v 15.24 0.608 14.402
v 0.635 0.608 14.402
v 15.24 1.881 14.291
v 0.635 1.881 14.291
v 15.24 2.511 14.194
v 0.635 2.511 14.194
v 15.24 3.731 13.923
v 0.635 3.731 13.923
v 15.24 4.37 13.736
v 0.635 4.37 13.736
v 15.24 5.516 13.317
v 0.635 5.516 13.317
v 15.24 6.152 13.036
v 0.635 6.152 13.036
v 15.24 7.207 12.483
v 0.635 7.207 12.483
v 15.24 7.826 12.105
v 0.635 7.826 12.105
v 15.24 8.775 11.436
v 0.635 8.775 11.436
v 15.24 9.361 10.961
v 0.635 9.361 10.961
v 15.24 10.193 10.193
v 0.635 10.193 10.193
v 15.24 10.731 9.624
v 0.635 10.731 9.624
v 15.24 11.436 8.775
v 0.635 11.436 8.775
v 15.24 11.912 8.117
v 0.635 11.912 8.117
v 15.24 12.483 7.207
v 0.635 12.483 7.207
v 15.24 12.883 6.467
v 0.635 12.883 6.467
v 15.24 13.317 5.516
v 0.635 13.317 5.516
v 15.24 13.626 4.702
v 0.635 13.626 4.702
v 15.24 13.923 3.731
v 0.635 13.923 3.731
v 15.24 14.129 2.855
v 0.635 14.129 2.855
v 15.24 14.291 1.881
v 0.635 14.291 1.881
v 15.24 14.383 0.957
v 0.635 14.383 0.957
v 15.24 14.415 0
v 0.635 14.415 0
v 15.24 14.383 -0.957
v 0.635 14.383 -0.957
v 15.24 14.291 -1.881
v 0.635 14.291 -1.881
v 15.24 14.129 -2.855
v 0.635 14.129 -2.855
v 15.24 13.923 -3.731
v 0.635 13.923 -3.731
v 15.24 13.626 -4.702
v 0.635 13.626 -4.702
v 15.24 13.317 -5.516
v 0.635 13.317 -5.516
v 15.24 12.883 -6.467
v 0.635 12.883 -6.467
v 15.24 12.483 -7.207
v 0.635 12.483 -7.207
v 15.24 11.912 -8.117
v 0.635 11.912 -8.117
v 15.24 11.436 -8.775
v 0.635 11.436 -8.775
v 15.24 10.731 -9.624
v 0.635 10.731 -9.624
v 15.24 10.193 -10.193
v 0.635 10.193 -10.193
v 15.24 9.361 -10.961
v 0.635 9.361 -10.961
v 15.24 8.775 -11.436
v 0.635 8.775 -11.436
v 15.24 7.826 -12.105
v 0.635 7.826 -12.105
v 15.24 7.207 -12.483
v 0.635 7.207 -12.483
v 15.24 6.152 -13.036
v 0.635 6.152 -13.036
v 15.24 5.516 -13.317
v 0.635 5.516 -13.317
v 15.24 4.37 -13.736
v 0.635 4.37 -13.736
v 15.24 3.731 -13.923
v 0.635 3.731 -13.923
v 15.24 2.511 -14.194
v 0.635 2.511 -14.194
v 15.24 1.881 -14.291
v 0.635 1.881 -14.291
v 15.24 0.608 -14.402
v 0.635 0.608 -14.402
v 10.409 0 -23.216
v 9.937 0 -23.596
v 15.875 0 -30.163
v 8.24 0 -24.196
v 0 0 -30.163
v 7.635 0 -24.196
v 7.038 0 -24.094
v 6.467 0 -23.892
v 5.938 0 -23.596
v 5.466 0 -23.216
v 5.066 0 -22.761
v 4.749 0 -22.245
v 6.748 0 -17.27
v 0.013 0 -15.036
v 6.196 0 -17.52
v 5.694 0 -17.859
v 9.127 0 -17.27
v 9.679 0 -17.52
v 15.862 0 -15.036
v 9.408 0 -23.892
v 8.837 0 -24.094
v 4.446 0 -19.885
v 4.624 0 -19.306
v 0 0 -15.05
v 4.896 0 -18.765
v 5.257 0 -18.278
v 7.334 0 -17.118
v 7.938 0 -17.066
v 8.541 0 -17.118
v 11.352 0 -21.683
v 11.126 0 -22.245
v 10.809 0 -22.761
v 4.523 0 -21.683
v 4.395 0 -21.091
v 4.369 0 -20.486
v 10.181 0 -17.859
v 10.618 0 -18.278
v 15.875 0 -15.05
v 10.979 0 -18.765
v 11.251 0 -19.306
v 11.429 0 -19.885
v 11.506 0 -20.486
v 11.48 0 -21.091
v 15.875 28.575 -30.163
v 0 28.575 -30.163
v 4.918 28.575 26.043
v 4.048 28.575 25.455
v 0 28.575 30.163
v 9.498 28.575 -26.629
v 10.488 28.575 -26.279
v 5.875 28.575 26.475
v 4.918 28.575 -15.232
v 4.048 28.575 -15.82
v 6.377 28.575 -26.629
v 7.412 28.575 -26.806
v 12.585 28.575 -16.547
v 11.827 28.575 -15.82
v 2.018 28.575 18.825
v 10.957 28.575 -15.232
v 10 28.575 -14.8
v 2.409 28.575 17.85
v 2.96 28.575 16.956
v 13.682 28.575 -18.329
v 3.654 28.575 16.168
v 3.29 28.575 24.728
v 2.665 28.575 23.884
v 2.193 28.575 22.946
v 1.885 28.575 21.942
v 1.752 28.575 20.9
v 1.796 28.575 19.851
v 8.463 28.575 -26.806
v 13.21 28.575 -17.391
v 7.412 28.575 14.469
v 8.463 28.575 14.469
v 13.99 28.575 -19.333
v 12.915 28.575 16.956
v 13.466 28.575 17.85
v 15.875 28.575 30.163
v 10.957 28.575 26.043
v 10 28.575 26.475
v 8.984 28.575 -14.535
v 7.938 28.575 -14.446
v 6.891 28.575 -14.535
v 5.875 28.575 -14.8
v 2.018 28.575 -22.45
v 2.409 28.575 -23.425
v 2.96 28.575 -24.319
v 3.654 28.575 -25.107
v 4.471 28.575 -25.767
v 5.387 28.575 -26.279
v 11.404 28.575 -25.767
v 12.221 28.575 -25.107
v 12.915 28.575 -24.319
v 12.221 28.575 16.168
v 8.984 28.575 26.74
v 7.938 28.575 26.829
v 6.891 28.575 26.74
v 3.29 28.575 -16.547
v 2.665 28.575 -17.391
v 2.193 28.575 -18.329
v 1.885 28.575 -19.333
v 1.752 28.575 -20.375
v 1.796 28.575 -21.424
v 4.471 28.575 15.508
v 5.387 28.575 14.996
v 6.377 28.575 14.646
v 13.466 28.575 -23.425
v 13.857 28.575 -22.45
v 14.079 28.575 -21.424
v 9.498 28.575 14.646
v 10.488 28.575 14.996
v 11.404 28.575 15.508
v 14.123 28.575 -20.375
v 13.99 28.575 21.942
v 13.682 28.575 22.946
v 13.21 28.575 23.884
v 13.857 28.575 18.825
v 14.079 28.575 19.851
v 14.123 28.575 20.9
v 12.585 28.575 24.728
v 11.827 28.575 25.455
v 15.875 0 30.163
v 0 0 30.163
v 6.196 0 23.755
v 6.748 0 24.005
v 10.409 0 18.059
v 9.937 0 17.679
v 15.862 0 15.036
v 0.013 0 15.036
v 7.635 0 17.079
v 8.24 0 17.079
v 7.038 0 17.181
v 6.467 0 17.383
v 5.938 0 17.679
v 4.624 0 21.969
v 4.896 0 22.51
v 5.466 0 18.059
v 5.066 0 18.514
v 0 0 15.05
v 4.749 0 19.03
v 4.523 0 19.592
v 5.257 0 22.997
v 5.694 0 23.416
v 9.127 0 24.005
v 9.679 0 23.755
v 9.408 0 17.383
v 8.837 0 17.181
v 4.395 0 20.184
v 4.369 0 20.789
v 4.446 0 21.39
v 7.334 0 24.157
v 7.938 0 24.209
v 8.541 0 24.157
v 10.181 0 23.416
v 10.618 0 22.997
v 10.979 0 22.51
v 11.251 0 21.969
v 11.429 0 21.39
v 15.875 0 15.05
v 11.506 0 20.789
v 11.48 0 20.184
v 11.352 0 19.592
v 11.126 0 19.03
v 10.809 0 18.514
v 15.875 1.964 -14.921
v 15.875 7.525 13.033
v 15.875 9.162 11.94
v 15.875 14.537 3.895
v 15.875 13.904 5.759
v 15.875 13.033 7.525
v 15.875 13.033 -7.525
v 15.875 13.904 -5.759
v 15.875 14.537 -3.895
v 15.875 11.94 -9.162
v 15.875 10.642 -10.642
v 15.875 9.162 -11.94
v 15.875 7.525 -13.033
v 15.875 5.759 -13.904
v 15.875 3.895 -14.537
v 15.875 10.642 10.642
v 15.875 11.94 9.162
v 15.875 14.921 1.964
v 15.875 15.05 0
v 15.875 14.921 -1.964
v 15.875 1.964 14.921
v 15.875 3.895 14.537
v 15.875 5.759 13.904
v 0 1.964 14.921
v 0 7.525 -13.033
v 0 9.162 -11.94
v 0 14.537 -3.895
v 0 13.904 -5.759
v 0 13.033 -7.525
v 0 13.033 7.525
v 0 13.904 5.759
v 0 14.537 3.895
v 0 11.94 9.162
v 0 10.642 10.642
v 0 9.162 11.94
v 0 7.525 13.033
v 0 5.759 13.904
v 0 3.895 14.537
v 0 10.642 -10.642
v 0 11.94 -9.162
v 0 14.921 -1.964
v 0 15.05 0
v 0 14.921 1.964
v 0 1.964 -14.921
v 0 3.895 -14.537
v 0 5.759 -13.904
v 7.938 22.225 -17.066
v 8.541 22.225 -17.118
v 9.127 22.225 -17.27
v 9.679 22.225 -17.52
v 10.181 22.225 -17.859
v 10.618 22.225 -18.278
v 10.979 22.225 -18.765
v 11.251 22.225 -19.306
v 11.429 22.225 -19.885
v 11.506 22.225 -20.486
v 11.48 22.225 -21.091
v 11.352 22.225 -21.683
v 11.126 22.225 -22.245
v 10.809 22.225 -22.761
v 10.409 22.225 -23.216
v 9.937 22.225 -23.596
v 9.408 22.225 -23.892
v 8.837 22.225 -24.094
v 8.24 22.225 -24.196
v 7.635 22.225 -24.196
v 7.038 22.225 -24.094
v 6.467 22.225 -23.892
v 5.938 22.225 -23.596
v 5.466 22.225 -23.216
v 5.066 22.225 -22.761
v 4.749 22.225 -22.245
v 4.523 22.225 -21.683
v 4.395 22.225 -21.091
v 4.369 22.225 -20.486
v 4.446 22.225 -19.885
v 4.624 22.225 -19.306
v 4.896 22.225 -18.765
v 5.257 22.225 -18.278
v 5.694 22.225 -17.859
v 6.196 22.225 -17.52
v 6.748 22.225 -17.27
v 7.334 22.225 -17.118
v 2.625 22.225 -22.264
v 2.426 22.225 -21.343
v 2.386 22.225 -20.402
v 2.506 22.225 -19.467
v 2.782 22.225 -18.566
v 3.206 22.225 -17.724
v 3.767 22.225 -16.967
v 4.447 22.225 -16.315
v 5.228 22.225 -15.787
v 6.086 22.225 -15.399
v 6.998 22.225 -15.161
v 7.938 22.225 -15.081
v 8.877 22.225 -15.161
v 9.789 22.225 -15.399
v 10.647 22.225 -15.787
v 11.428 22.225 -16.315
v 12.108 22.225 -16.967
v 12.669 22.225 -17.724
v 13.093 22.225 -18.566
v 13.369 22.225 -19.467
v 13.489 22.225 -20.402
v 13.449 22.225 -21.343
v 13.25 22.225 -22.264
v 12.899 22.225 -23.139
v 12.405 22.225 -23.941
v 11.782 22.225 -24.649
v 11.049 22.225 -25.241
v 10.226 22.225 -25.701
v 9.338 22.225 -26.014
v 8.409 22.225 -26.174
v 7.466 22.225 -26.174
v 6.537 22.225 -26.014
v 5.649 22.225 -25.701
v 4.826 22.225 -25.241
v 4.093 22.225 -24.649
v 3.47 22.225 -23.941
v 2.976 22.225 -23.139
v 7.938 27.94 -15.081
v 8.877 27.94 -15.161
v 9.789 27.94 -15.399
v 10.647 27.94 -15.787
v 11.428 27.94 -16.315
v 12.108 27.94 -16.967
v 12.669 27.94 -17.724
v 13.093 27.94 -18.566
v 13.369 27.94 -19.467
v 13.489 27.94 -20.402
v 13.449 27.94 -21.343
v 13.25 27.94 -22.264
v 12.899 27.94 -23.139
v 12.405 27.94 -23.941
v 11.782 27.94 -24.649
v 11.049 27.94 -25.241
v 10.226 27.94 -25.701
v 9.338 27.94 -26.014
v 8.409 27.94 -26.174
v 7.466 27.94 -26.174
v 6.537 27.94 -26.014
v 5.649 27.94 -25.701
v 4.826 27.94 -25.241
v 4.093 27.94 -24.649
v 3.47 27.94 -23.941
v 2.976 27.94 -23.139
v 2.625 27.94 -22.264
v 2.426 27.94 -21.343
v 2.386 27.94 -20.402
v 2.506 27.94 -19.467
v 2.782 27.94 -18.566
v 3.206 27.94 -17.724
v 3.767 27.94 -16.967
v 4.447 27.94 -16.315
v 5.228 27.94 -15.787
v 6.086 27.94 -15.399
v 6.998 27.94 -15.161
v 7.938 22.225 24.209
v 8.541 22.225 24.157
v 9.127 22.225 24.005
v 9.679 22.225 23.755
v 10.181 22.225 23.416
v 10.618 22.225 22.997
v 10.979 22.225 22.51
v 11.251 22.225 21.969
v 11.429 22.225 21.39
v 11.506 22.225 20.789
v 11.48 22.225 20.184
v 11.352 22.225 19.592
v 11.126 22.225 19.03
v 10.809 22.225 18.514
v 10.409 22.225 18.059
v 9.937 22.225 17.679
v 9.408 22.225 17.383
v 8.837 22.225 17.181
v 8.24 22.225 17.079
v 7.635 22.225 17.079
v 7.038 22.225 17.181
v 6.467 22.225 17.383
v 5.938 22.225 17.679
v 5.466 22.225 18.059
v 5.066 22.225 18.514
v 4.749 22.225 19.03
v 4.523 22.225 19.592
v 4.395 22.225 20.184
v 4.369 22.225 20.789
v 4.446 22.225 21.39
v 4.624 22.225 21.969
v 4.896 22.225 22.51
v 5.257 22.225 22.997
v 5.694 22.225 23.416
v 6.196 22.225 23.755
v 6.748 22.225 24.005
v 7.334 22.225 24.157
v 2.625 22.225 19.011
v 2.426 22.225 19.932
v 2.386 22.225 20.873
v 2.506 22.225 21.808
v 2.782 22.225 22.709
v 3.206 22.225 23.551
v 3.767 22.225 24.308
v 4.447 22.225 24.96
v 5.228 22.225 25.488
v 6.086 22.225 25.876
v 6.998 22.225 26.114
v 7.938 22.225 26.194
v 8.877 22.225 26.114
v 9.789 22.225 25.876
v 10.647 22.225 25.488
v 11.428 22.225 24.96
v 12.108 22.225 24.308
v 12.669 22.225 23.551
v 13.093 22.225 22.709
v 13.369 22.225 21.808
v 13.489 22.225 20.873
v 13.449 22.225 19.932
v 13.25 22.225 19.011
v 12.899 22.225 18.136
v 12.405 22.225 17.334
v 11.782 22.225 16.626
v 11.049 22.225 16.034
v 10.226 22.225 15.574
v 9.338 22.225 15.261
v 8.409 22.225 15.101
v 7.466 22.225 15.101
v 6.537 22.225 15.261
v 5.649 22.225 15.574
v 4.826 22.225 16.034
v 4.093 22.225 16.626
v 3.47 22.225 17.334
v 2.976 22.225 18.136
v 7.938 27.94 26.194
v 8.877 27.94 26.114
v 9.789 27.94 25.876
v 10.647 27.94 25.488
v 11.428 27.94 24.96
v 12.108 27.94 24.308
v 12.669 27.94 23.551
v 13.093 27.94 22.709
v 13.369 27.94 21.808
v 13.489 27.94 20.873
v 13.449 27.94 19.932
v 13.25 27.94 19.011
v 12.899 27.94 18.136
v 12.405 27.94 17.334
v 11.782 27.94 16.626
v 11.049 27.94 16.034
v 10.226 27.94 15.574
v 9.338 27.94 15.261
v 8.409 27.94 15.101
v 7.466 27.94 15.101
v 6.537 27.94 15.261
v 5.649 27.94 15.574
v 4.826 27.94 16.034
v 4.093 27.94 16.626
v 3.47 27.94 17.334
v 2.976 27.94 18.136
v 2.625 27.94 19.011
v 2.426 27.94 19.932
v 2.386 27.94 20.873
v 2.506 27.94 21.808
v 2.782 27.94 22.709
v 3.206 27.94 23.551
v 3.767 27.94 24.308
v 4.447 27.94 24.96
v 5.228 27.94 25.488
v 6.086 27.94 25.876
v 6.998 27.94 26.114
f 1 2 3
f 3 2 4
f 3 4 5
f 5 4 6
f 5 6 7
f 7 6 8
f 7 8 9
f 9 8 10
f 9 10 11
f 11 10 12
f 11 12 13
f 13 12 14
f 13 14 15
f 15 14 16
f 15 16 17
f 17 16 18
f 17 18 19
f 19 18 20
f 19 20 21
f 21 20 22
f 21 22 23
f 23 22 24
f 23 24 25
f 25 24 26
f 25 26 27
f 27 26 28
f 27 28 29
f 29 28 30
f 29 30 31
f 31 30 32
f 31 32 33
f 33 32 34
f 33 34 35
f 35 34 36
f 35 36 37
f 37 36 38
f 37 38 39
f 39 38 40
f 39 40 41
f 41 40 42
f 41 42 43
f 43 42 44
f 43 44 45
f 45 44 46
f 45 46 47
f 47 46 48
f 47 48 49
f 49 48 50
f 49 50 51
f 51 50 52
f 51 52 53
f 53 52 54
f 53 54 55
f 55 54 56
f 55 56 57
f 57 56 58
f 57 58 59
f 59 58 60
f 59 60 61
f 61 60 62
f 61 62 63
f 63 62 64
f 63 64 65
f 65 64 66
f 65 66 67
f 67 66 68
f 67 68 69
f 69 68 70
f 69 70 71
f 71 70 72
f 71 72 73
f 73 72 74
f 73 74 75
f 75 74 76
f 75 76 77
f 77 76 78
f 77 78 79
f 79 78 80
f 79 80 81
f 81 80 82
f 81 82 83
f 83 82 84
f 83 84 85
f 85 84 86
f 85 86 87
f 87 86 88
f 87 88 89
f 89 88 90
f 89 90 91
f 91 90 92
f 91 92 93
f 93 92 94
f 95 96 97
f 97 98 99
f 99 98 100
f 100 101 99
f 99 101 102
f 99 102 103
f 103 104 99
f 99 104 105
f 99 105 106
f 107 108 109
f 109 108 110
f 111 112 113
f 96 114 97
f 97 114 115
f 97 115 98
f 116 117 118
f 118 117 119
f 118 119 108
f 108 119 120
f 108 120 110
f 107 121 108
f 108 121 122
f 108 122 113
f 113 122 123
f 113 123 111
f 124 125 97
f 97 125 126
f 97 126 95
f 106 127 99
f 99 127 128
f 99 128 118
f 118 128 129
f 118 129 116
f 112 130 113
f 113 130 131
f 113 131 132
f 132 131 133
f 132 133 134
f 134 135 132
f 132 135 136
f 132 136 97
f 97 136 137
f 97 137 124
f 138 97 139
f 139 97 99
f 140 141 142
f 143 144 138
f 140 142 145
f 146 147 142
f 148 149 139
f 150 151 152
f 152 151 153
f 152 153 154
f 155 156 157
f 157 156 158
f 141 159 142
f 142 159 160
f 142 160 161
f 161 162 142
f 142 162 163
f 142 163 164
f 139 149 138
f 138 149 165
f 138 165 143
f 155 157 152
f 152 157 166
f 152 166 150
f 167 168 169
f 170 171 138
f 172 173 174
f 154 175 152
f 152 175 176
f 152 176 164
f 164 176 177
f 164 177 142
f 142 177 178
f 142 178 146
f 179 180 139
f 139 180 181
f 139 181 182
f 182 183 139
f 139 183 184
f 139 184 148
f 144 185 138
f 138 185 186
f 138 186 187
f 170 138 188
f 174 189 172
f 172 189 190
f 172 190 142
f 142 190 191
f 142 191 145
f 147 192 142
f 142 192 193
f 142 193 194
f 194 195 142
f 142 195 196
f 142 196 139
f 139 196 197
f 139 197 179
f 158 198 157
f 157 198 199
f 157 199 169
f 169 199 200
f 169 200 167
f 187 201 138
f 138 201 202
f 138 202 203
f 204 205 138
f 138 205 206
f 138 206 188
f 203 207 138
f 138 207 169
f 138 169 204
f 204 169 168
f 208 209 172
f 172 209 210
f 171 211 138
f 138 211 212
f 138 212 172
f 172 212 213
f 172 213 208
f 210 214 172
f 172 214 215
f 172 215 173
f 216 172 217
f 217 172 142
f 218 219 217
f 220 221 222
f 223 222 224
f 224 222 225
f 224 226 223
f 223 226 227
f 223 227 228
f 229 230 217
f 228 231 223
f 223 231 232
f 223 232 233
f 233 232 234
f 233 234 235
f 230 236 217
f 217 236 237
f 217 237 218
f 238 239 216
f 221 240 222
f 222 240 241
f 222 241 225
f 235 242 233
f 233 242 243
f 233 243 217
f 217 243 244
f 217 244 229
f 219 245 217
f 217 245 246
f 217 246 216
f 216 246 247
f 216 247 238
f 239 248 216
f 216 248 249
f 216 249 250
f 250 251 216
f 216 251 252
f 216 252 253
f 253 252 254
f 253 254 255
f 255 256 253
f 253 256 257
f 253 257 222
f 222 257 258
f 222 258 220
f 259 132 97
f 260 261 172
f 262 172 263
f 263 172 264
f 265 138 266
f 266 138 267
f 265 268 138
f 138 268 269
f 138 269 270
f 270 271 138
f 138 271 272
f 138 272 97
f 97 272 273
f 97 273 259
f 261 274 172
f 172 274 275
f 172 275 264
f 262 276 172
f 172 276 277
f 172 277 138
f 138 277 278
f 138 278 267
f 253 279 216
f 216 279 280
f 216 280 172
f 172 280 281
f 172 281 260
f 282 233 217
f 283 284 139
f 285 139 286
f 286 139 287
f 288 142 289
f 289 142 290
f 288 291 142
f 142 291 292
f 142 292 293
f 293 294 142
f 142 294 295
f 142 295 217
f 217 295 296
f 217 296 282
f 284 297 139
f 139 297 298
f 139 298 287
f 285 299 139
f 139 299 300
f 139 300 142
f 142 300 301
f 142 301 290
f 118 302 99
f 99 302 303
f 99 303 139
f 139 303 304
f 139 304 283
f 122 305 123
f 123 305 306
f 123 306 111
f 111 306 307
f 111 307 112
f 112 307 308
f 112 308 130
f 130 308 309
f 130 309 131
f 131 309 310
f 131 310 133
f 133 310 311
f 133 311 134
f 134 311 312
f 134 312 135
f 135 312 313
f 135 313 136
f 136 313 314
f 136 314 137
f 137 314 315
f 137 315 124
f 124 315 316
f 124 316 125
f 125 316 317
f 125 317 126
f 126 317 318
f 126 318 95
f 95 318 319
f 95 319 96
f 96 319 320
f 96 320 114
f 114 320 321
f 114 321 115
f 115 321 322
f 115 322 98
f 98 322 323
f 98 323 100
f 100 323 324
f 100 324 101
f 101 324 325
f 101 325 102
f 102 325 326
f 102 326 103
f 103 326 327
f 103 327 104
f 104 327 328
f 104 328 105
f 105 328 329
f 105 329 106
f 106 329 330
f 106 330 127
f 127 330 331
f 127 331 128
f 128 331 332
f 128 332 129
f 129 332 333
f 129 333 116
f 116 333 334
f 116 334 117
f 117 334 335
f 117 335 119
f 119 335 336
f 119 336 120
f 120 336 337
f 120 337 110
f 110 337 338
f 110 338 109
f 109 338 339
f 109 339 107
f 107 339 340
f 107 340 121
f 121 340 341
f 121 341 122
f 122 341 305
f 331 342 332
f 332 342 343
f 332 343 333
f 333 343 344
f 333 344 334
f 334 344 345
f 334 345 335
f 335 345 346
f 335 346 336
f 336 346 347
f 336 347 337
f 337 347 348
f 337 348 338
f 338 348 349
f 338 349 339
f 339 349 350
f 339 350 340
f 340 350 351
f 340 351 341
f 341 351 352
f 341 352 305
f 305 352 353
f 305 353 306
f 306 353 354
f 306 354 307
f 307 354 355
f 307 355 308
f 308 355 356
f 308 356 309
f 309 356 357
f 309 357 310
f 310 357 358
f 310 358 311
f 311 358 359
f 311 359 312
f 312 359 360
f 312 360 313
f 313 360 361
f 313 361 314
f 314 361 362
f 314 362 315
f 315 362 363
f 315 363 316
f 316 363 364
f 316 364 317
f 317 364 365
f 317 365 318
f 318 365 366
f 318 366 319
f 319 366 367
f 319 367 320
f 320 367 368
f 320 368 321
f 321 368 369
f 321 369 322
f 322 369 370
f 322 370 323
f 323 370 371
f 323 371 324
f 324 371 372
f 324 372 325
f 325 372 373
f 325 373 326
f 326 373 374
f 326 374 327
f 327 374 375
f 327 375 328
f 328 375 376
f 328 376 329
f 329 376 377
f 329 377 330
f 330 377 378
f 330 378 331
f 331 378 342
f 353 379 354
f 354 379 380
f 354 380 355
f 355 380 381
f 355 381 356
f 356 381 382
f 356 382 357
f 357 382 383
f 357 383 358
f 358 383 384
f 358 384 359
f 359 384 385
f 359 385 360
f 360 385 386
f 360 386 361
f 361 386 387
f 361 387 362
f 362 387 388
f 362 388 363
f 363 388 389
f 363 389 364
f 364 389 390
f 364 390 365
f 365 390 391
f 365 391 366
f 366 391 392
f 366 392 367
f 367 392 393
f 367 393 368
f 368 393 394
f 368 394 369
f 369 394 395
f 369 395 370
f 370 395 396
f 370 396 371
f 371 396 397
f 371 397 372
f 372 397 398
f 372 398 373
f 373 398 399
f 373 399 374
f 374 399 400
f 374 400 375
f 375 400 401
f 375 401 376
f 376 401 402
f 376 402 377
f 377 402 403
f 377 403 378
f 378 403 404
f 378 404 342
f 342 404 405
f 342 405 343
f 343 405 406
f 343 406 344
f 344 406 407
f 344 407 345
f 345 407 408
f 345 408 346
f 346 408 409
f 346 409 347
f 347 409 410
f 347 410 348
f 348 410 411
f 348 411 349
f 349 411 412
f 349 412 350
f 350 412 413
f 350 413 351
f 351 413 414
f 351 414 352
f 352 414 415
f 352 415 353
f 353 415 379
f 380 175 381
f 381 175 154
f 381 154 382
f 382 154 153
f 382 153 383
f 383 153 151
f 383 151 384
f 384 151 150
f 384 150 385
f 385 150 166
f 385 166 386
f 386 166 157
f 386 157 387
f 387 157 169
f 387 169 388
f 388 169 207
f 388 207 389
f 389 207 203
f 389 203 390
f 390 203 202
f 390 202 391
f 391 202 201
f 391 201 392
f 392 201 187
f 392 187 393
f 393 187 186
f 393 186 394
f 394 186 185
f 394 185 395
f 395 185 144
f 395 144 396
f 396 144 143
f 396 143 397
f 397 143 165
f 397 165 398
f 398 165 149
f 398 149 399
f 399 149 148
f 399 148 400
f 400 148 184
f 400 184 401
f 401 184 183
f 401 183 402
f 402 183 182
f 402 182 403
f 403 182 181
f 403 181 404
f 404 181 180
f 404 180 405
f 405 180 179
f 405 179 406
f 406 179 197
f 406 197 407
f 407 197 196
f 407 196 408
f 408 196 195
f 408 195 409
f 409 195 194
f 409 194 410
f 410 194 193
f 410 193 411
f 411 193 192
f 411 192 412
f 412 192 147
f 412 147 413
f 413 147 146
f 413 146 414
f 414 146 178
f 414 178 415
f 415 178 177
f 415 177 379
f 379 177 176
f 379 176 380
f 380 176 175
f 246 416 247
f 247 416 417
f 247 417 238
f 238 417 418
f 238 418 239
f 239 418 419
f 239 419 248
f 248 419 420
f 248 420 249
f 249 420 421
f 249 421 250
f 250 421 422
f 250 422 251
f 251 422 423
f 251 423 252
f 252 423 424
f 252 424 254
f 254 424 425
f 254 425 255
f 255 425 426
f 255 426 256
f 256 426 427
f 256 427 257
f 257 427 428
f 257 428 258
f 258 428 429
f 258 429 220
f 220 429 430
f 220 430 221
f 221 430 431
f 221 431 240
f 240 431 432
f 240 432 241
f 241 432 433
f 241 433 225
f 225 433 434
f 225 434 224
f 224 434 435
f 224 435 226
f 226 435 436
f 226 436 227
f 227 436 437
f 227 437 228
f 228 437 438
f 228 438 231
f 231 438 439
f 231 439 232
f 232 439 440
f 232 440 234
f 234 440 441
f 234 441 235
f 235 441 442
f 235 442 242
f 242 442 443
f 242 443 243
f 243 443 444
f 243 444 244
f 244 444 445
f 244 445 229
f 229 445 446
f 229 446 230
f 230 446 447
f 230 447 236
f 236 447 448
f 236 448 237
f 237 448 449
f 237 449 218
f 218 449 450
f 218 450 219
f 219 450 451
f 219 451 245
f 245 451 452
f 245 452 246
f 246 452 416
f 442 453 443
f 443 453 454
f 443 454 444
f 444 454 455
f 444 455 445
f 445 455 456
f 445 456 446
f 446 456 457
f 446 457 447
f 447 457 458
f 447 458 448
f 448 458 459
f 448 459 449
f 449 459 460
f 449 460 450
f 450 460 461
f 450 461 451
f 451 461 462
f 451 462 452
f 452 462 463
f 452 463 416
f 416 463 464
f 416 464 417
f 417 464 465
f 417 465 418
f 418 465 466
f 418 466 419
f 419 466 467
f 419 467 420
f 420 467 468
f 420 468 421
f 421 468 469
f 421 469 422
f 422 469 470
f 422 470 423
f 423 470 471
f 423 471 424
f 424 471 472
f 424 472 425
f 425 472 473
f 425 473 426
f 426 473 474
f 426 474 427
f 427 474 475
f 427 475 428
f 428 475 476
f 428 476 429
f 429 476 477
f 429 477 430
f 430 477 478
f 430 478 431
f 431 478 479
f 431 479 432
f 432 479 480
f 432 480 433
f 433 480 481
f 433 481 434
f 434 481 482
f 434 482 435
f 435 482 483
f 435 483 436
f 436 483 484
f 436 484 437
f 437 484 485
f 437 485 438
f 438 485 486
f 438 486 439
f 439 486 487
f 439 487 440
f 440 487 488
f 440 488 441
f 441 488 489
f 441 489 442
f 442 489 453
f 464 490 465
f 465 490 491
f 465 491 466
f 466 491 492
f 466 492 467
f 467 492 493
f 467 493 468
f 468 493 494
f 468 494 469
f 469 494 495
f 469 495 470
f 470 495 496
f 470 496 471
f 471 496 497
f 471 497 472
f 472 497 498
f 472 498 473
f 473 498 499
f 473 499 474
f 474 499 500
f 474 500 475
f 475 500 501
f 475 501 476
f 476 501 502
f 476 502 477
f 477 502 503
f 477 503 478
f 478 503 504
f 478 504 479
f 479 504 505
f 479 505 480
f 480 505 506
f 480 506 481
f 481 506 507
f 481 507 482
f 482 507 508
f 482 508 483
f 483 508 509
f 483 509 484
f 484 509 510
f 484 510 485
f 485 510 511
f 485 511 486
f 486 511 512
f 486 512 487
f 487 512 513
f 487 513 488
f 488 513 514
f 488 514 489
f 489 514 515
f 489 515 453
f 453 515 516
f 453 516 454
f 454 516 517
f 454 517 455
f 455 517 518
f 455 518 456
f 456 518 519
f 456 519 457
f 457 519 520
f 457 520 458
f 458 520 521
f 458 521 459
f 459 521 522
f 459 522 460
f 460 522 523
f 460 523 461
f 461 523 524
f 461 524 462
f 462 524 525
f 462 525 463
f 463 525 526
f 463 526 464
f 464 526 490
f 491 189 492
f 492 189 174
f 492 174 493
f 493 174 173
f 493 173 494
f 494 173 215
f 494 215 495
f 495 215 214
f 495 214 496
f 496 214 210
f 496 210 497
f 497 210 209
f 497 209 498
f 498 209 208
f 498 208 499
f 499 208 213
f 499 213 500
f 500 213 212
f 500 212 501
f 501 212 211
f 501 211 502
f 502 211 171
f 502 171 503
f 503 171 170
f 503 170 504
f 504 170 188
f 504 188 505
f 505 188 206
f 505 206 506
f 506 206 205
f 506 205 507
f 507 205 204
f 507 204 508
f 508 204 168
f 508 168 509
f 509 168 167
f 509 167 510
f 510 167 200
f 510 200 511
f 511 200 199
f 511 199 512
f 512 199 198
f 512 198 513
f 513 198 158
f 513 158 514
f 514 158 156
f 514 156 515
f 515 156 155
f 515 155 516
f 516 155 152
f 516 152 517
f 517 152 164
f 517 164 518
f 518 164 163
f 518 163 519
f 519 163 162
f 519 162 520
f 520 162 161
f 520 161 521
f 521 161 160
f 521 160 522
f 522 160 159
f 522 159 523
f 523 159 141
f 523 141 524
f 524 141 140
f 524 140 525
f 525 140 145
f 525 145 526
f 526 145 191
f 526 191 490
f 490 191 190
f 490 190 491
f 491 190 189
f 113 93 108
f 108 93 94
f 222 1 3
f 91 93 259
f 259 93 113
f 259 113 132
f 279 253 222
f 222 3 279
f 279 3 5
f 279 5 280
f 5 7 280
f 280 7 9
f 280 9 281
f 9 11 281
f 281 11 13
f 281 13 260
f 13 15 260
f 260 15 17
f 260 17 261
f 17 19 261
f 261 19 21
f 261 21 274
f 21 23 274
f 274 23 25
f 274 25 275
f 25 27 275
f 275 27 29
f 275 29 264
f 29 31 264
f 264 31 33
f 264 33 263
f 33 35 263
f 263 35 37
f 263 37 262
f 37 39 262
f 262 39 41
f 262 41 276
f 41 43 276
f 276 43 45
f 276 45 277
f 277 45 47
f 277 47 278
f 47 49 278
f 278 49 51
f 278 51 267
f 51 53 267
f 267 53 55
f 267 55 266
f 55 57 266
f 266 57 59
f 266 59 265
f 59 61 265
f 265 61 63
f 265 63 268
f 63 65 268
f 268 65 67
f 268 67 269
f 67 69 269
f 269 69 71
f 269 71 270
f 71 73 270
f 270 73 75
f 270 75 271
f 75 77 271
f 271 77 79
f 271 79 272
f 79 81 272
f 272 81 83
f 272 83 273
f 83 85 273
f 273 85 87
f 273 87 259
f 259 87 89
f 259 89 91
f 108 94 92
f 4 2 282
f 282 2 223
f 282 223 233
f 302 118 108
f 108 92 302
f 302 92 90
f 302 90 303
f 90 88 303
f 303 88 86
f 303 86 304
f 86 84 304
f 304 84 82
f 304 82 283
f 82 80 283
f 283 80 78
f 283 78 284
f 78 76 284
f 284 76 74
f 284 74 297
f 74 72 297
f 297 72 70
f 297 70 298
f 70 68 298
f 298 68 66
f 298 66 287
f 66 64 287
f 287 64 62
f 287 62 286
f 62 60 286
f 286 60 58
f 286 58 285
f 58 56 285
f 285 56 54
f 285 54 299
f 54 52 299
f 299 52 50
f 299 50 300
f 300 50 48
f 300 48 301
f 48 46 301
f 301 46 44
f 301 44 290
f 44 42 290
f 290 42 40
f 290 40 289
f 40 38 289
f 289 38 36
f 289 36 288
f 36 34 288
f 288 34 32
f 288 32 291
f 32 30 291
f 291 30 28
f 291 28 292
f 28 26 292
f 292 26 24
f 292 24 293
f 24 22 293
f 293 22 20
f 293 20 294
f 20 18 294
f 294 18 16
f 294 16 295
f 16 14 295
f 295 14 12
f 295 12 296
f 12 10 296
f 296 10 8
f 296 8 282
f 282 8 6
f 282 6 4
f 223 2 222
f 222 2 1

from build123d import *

# Parameters (mm, degrees)
BOSS_EXTRUDE1_DEPTH                           = 15.875
BOSS_EXTRUDE2_DEPTH                           = 15.875
CBORE_FOR_1_4_SOCKET_HEAD_CAP_SCREW1_AT_COUNT = 2
CBORE_FOR_1_4_SOCKET_HEAD_CAP_SCREW1_AT_PITCH = 41.275
MOVE_FACE1_BY                                 = 0.127
MOVE_FACE1_2_BY                               = 0.127
MOVE_START                                    = 28.575
MOVE_FACE2_OUTLINE_W                          = 15.875
MOVE_FACE2_OUTLINE_H                          = 60.325
MOVE_FACE2_OUTLINE_R                          = 5.55625
MOVE_FACE2_DEPTH                              = 6.35
MOVE_START_2                                  = 22.225
MOVE_FACE2_2_OUTLINE_R                        = 5.55625
MOVE_FACE2_2_OUTLINE_R_2                      = 3.57124
MOVE_FACE2_2_DEPTH                            = 6.35


with BuildPart() as part:
    # Sketch1 → Boss-Extrude1 (new body)
    with BuildSketch(Plane(origin=(0, 0, 0), x_dir=(0, 0, -1), z_dir=(1, 0, 0))):
        with BuildLine():
            Line((30.1625, 0), (14.2875, 0))
            ThreePointArc((14.2875, 0), (0, -14.2875), (-14.2875, 0))
            Line((-14.2875, 0), (-30.1625, 0))
            Line((-30.1625, 0), (-30.1625, -34.925))
            Line((-30.1625, -34.925), (30.1625, -34.925))
            Line((30.1625, -34.925), (30.1625, 0))
        make_face()
    extrude(amount=BOSS_EXTRUDE1_DEPTH)


with BuildPart() as body_2:
    # Sketch1<3> → Boss-Extrude2 (new body)
    with BuildSketch(Plane(origin=(0, 0, 0), x_dir=(0, 0, -1), z_dir=(1, 0, 0))):
        with BuildLine():
            ThreePointArc((-14.2875, 0), (0, 14.2875), (14.2875, 0))
            Line((14.2875, 0), (30.1625, 0))
            Line((30.1625, 0), (30.1625, 34.925))
            Line((30.1625, 34.925), (-30.1625, 34.925))
            Line((-30.1625, 34.925), (-30.1625, 0))
            Line((-30.1625, 0), (-14.2875, 0))
        make_face()
    extrude(amount=BOSS_EXTRUDE2_DEPTH)


with BuildPart() as cbore_for_1_4_socket_head_cap_screw1_tool:
    # Sketch4 → CBORE for 1/4 Socket Head Cap Screw1 (revolve)
    with BuildSketch(Plane(origin=(7.9375, 34.925, 20.6375), x_dir=(0, 0, 1), z_dir=(1, 0, 0))):
        Polygon((0, 0), (0, 69.85), (3.57124, 69.85), (3.57124, 6.35), (5.55625, 6.35), (5.55625, 0.635), (6.19125, 0), align=None)
    cbore_for_1_4_socket_head_cap_screw1 = revolve(axis=Axis((7.9375, 41.275, 20.6375), (0, -1, 0)))


with BuildPart() as part_1:
    add(part.part)

    # CBORE for 1/4 Socket Head Cap Screw1: cut by cbore_for_1_4_socket_head_cap_screw1_tool
    add(cbore_for_1_4_socket_head_cap_screw1_tool.part, mode=Mode.SUBTRACT)


with BuildPart() as body_2_1:
    add(body_2.part)

    # CBORE for 1/4 Socket Head Cap Screw1: cut by cbore_for_1_4_socket_head_cap_screw1_tool
    add(cbore_for_1_4_socket_head_cap_screw1_tool.part, mode=Mode.SUBTRACT)


with BuildPart() as cbore_for_1_4_socket_head_cap_screw1_at_tool:
    # CBORE for 1/4 Socket Head Cap Screw1 at: CBORE for 1/4 Socket Head Cap Screw1 ×2
    with Locations(*[(0, 0, -i * CBORE_FOR_1_4_SOCKET_HEAD_CAP_SCREW1_AT_PITCH) for i in range(1, CBORE_FOR_1_4_SOCKET_HEAD_CAP_SCREW1_AT_COUNT)]):
        add(cbore_for_1_4_socket_head_cap_screw1)


with BuildPart() as part_2:
    add(part_1.part)

    # CBORE for 1/4 Socket Head Cap Screw1 at: cut by cbore_for_1_4_socket_head_cap_screw1_at_tool
    add(cbore_for_1_4_socket_head_cap_screw1_at_tool.part, mode=Mode.SUBTRACT)

    # Move Face1 2: a curved face moved inward by 0.127
    add(Solid.thicken(part_2.faces().sort_by_distance((7.9375, -14.2875, 0))[0], -MOVE_FACE1_2_BY), mode=Mode.SUBTRACT)

    # Chamfer2
    # the kernel refuses this chamfer: 0.635 mm, written as the material it takes off along each edge
    with BuildSketch(Plane(origin=(0, 0, 0), x_dir=(0, 0.1132288377802066, -0.9935689358544497), z_dir=(0, 0.9935689358544497, 0.1132288377802066))) as chamfer2_piece_1:
        with BuildLine():
            Line((15.067460512, 0.017960512), (14.396539488, -0.652960512))
            Line((14.396539488, -0.652960512), (14.383839488, -0.652960512))
            ThreePointArc((14.383839488, -0.652960512), (14.4018, -0.326480256), (14.4018, 0))
            Line((14.4018, 0), (14.4145, 0.0127))
            ThreePointArc((14.4145, 0.0127), (14.740980256, 0.0127), (15.067460512, 0.030660512))
            Line((15.067460512, 0.030660512), (15.067460512, 0.017960512))
        make_face()
    revolve(axis=Axis((0, 0, 0), (-1, 0, 0)), revolution_arc=193.002955297, mode=Mode.SUBTRACT)
    with BuildSketch(Plane(origin=(-1.600435701, 0, -14.4145), x_dir=(0, 0, -1), z_dir=(1, 0, 0))) as chamfer2_piece_2:
        with BuildLine():
            Line((0.639932919, 0.017577515), (-0.031172593, -0.625784266))
            Line((-0.031172593, -0.625784266), (-0.043861283, -0.625248401))
            ThreePointArc((-0.043861283, -0.625248401), (-0.016099091, -0.31288099), (-0.0127, 0))
            Line((-0.0127, 0), (0, 0.0127))
            ThreePointArc((0, 0.0127), (0.319966459, 0.0127), (0.639932919, 0.030277515))
            Line((0.639932919, 0.030277515), (0.639932919, 0.017577515))
        make_face()
    extrude(amount=19.075871403, mode=Mode.SUBTRACT)
    with BuildSketch(Plane(origin=(-1.600435701, 0, 14.4145), x_dir=(0, -0.999777333387341, -0.021101745067597762), z_dir=(1, 0, 0))) as chamfer2_piece_3:
        with BuildLine():
            Line((0.626302721, 0.017960512), (-0.031077302, -0.639419511))
            Line((-0.031077302, -0.639419511), (-0.043774474, -0.639151519))
            ThreePointArc((-0.043774474, -0.639151519), (-0.019449023, -0.319627221), (-0.012697172, 0.000267992))
            Line((-0.012697172, 0.000267992), (0.000267992, 0.012697172))
            ThreePointArc((0.000267992, 0.012697172), (0.313151041, 0.009493172), (0.626034729, 0.030657684))
            Line((0.626034729, 0.030657684), (0.626302721, 0.017960512))
        make_face()
    extrude(amount=19.075871403, mode=Mode.SUBTRACT)
    with BuildSketch(Plane(origin=(15.875, 0, 0), x_dir=(0, 0.11322883778020662, -0.9935689358544497), z_dir=(0, 0.9935689358544497, 0.11322883778020662))) as chamfer2_piece_4:
        with BuildLine():
            Line((14.396539488, 0.652960512), (15.067460512, -0.017960512))
            Line((15.067460512, -0.017960512), (15.067460512, -0.030660512))
            ThreePointArc((15.067460512, -0.030660512), (14.740980256, -0.0127), (14.4145, -0.0127))
            Line((14.4145, -0.0127), (14.4018, 0))
            ThreePointArc((14.4018, 0), (14.4018, 0.326480256), (14.383839488, 0.652960512))
            Line((14.383839488, 0.652960512), (14.396539488, 0.652960512))
        make_face()
    revolve(axis=Axis((15.875, 0, 0), (-1, 0, 0)), revolution_arc=193.002955297, mode=Mode.SUBTRACT)


with BuildPart() as body_2_2:
    add(body_2_1.part)

    # CBORE for 1/4 Socket Head Cap Screw1 at: cut by cbore_for_1_4_socket_head_cap_screw1_at_tool
    add(cbore_for_1_4_socket_head_cap_screw1_at_tool.part, mode=Mode.SUBTRACT)

    # Move Face1: a curved face moved inward by 0.127
    add(Solid.thicken(body_2_2.faces().sort_by_distance((7.9375, 14.2875, 0))[0], -MOVE_FACE1_BY), mode=Mode.SUBTRACT)

    # Move Face2: read off the stored shape, not the designer's step
    # Move Face2 outline → Move Face2 (cut)
    with BuildSketch(Plane(origin=(0, 0, 0), x_dir=(1, 0, 0), z_dir=(0, 1, 0)).offset(MOVE_START)):
        with Locations((7.9375, 0)):
            Rectangle(MOVE_FACE2_OUTLINE_W, MOVE_FACE2_OUTLINE_H)
        with Locations((7.9375, -20.6375)):
            Circle(MOVE_FACE2_OUTLINE_R, mode=Mode.SUBTRACT)
        with Locations((7.9375, 20.6375)):
            Circle(MOVE_FACE2_OUTLINE_R, mode=Mode.SUBTRACT)
    extrude(amount=MOVE_FACE2_DEPTH, mode=Mode.SUBTRACT)

    # Move Face2 2 outline → Move Face2 2 (cut)
    # profile 1 of 2: a face of its own
    with BuildSketch(Plane(origin=(0, 0, 0), x_dir=(1, 0, 0), z_dir=(0, 1, 0)).offset(MOVE_START_2)):
        with Locations((7.9375, 20.6375)):
            Circle(MOVE_FACE2_2_OUTLINE_R)
        with Locations((7.9375, 20.6375)):
            Circle(MOVE_FACE2_2_OUTLINE_R_2, mode=Mode.SUBTRACT)
    # profile 2 of 2: a face of its own
    with BuildSketch(Plane(origin=(0, 0, 0), x_dir=(1, 0, 0), z_dir=(0, 1, 0)).offset(MOVE_START_2)):
        with Locations((7.9375, -20.6375)):
            Circle(MOVE_FACE2_2_OUTLINE_R)
        with Locations((7.9375, -20.6375)):
            Circle(MOVE_FACE2_2_OUTLINE_R_2, mode=Mode.SUBTRACT)
    extrude(amount=MOVE_FACE2_2_DEPTH, mode=Mode.SUBTRACT)

    # Move Face2 3: loft between two sections, ruled curve by curve
    move_face2_3_from = [
        Edge.make_three_point_arc((7.9375, 27.94, -15.08125), (13.49375, 27.94, -20.6375), (7.9375, 27.94, -26.19375)),
        Edge.make_three_point_arc((7.9375, 27.94, -26.19375), (2.38125, 27.94, -20.6375), (7.9375, 27.94, -15.08125)),
    ]
    move_face2_3_to = [
        Edge.make_three_point_arc((7.9375, 28.575, -14.44625), (14.12875, 28.575, -20.6375), (7.9375, 28.575, -26.82875)),
        Edge.make_three_point_arc((7.9375, 28.575, -26.82875), (1.74625, 28.575, -20.6375), (7.9375, 28.575, -14.44625)),
    ]
    move_face2_3 = Solid(Shell([*[Face.make_surface_from_curves(move_face2_3_from[k], move_face2_3_to[k]) for k in range(2)], Face(Wire(move_face2_3_from)), Face(Wire(move_face2_3_to))]))
    add(move_face2_3, mode=Mode.SUBTRACT)

    # Move Face2 4: loft between two sections, ruled curve by curve
    move_face2_4_from = [
        Edge.make_three_point_arc((7.9375, 27.94, 26.19375), (13.49375, 27.94, 20.6375), (7.9375, 27.94, 15.08125)),
        Edge.make_three_point_arc((7.9375, 27.94, 15.08125), (2.38125, 27.94, 20.6375), (7.9375, 27.94, 26.19375)),
    ]
    move_face2_4_to = [
        Edge.make_three_point_arc((7.9375, 28.575, 26.82875), (14.12875, 28.575, 20.6375), (7.9375, 28.575, 14.44625)),
        Edge.make_three_point_arc((7.9375, 28.575, 14.44625), (1.74625, 28.575, 20.6375), (7.9375, 28.575, 26.82875)),
    ]
    move_face2_4 = Solid(Shell([*[Face.make_surface_from_curves(move_face2_4_from[k], move_face2_4_to[k]) for k in range(2)], Face(Wire(move_face2_4_from)), Face(Wire(move_face2_4_to))]))
    add(move_face2_4, mode=Mode.SUBTRACT)

    # Chamfer1
    # the kernel refuses this chamfer: 0.635 mm, written as the material it takes off along each edge
    with BuildSketch(Plane(origin=(0, 0, 0), x_dir=(0, -0.11322883778020673, 0.9935689358544497), z_dir=(0, -0.9935689358544497, -0.11322883778020673))) as chamfer1_piece_1:
        with BuildLine():
            Line((15.067460512, 0.017960512), (14.396539488, -0.652960512))
            Line((14.396539488, -0.652960512), (14.383839488, -0.652960512))
            ThreePointArc((14.383839488, -0.652960512), (14.4018, -0.326480256), (14.4018, 0))
            Line((14.4018, 0), (14.4145, 0.0127))
            ThreePointArc((14.4145, 0.0127), (14.740980256, 0.0127), (15.067460512, 0.030660512))
            Line((15.067460512, 0.030660512), (15.067460512, 0.017960512))
        make_face()
    revolve(axis=Axis((0, 0, 0), (-1, 0, 0)), revolution_arc=193.002955297, mode=Mode.SUBTRACT)
    with BuildSketch(Plane(origin=(-1.600435701, 0, 14.4145), x_dir=(0, 0, 1), z_dir=(1, 0, 0))) as chamfer1_piece_2:
        with BuildLine():
            Line((0.639932919, 0.017577515), (-0.031172593, -0.625784266))
            Line((-0.031172593, -0.625784266), (-0.043861283, -0.625248401))
            ThreePointArc((-0.043861283, -0.625248401), (-0.016099091, -0.31288099), (-0.0127, 0))
            Line((-0.0127, 0), (0, 0.0127))
            ThreePointArc((0, 0.0127), (0.319966459, 0.0127), (0.639932919, 0.030277515))
            Line((0.639932919, 0.030277515), (0.639932919, 0.017577515))
        make_face()
    extrude(amount=19.075871403, mode=Mode.SUBTRACT)
    with BuildSketch(Plane(origin=(-1.600435701, 0, -14.4145), x_dir=(0, 0.999777333387341, 0.021101745067597762), z_dir=(1, 0, 0))) as chamfer1_piece_3:
        with BuildLine():
            Line((0.626302721, 0.017960512), (-0.031077302, -0.639419511))
            Line((-0.031077302, -0.639419511), (-0.043774474, -0.639151519))
            ThreePointArc((-0.043774474, -0.639151519), (-0.019449023, -0.319627221), (-0.012697172, 0.000267992))
            Line((-0.012697172, 0.000267992), (0.000267992, 0.012697172))
            ThreePointArc((0.000267992, 0.012697172), (0.313151041, 0.009493172), (0.626034729, 0.030657684))
            Line((0.626034729, 0.030657684), (0.626302721, 0.017960512))
        make_face()
    extrude(amount=19.075871403, mode=Mode.SUBTRACT)
    with BuildSketch(Plane(origin=(15.875, 0, 0), x_dir=(0, -0.11322883778020675, 0.9935689358544497), z_dir=(0, -0.9935689358544497, -0.11322883778020675))) as chamfer1_piece_4:
        with BuildLine():
            Line((14.396539488, 0.652960512), (15.067460512, -0.017960512))
            Line((15.067460512, -0.017960512), (15.067460512, -0.030660512))
            ThreePointArc((15.067460512, -0.030660512), (14.740980256, -0.0127), (14.4145, -0.0127))
            Line((14.4145, -0.0127), (14.4018, 0))
            ThreePointArc((14.4018, 0), (14.4018, 0.326480256), (14.383839488, 0.652960512))
            Line((14.383839488, 0.652960512), (14.396539488, 0.652960512))
        make_face()
    revolve(axis=Axis((15.875, 0, 0), (-1, 0, 0)), revolution_arc=193.002955297, mode=Mode.SUBTRACT)


solid = body_2_2.part
